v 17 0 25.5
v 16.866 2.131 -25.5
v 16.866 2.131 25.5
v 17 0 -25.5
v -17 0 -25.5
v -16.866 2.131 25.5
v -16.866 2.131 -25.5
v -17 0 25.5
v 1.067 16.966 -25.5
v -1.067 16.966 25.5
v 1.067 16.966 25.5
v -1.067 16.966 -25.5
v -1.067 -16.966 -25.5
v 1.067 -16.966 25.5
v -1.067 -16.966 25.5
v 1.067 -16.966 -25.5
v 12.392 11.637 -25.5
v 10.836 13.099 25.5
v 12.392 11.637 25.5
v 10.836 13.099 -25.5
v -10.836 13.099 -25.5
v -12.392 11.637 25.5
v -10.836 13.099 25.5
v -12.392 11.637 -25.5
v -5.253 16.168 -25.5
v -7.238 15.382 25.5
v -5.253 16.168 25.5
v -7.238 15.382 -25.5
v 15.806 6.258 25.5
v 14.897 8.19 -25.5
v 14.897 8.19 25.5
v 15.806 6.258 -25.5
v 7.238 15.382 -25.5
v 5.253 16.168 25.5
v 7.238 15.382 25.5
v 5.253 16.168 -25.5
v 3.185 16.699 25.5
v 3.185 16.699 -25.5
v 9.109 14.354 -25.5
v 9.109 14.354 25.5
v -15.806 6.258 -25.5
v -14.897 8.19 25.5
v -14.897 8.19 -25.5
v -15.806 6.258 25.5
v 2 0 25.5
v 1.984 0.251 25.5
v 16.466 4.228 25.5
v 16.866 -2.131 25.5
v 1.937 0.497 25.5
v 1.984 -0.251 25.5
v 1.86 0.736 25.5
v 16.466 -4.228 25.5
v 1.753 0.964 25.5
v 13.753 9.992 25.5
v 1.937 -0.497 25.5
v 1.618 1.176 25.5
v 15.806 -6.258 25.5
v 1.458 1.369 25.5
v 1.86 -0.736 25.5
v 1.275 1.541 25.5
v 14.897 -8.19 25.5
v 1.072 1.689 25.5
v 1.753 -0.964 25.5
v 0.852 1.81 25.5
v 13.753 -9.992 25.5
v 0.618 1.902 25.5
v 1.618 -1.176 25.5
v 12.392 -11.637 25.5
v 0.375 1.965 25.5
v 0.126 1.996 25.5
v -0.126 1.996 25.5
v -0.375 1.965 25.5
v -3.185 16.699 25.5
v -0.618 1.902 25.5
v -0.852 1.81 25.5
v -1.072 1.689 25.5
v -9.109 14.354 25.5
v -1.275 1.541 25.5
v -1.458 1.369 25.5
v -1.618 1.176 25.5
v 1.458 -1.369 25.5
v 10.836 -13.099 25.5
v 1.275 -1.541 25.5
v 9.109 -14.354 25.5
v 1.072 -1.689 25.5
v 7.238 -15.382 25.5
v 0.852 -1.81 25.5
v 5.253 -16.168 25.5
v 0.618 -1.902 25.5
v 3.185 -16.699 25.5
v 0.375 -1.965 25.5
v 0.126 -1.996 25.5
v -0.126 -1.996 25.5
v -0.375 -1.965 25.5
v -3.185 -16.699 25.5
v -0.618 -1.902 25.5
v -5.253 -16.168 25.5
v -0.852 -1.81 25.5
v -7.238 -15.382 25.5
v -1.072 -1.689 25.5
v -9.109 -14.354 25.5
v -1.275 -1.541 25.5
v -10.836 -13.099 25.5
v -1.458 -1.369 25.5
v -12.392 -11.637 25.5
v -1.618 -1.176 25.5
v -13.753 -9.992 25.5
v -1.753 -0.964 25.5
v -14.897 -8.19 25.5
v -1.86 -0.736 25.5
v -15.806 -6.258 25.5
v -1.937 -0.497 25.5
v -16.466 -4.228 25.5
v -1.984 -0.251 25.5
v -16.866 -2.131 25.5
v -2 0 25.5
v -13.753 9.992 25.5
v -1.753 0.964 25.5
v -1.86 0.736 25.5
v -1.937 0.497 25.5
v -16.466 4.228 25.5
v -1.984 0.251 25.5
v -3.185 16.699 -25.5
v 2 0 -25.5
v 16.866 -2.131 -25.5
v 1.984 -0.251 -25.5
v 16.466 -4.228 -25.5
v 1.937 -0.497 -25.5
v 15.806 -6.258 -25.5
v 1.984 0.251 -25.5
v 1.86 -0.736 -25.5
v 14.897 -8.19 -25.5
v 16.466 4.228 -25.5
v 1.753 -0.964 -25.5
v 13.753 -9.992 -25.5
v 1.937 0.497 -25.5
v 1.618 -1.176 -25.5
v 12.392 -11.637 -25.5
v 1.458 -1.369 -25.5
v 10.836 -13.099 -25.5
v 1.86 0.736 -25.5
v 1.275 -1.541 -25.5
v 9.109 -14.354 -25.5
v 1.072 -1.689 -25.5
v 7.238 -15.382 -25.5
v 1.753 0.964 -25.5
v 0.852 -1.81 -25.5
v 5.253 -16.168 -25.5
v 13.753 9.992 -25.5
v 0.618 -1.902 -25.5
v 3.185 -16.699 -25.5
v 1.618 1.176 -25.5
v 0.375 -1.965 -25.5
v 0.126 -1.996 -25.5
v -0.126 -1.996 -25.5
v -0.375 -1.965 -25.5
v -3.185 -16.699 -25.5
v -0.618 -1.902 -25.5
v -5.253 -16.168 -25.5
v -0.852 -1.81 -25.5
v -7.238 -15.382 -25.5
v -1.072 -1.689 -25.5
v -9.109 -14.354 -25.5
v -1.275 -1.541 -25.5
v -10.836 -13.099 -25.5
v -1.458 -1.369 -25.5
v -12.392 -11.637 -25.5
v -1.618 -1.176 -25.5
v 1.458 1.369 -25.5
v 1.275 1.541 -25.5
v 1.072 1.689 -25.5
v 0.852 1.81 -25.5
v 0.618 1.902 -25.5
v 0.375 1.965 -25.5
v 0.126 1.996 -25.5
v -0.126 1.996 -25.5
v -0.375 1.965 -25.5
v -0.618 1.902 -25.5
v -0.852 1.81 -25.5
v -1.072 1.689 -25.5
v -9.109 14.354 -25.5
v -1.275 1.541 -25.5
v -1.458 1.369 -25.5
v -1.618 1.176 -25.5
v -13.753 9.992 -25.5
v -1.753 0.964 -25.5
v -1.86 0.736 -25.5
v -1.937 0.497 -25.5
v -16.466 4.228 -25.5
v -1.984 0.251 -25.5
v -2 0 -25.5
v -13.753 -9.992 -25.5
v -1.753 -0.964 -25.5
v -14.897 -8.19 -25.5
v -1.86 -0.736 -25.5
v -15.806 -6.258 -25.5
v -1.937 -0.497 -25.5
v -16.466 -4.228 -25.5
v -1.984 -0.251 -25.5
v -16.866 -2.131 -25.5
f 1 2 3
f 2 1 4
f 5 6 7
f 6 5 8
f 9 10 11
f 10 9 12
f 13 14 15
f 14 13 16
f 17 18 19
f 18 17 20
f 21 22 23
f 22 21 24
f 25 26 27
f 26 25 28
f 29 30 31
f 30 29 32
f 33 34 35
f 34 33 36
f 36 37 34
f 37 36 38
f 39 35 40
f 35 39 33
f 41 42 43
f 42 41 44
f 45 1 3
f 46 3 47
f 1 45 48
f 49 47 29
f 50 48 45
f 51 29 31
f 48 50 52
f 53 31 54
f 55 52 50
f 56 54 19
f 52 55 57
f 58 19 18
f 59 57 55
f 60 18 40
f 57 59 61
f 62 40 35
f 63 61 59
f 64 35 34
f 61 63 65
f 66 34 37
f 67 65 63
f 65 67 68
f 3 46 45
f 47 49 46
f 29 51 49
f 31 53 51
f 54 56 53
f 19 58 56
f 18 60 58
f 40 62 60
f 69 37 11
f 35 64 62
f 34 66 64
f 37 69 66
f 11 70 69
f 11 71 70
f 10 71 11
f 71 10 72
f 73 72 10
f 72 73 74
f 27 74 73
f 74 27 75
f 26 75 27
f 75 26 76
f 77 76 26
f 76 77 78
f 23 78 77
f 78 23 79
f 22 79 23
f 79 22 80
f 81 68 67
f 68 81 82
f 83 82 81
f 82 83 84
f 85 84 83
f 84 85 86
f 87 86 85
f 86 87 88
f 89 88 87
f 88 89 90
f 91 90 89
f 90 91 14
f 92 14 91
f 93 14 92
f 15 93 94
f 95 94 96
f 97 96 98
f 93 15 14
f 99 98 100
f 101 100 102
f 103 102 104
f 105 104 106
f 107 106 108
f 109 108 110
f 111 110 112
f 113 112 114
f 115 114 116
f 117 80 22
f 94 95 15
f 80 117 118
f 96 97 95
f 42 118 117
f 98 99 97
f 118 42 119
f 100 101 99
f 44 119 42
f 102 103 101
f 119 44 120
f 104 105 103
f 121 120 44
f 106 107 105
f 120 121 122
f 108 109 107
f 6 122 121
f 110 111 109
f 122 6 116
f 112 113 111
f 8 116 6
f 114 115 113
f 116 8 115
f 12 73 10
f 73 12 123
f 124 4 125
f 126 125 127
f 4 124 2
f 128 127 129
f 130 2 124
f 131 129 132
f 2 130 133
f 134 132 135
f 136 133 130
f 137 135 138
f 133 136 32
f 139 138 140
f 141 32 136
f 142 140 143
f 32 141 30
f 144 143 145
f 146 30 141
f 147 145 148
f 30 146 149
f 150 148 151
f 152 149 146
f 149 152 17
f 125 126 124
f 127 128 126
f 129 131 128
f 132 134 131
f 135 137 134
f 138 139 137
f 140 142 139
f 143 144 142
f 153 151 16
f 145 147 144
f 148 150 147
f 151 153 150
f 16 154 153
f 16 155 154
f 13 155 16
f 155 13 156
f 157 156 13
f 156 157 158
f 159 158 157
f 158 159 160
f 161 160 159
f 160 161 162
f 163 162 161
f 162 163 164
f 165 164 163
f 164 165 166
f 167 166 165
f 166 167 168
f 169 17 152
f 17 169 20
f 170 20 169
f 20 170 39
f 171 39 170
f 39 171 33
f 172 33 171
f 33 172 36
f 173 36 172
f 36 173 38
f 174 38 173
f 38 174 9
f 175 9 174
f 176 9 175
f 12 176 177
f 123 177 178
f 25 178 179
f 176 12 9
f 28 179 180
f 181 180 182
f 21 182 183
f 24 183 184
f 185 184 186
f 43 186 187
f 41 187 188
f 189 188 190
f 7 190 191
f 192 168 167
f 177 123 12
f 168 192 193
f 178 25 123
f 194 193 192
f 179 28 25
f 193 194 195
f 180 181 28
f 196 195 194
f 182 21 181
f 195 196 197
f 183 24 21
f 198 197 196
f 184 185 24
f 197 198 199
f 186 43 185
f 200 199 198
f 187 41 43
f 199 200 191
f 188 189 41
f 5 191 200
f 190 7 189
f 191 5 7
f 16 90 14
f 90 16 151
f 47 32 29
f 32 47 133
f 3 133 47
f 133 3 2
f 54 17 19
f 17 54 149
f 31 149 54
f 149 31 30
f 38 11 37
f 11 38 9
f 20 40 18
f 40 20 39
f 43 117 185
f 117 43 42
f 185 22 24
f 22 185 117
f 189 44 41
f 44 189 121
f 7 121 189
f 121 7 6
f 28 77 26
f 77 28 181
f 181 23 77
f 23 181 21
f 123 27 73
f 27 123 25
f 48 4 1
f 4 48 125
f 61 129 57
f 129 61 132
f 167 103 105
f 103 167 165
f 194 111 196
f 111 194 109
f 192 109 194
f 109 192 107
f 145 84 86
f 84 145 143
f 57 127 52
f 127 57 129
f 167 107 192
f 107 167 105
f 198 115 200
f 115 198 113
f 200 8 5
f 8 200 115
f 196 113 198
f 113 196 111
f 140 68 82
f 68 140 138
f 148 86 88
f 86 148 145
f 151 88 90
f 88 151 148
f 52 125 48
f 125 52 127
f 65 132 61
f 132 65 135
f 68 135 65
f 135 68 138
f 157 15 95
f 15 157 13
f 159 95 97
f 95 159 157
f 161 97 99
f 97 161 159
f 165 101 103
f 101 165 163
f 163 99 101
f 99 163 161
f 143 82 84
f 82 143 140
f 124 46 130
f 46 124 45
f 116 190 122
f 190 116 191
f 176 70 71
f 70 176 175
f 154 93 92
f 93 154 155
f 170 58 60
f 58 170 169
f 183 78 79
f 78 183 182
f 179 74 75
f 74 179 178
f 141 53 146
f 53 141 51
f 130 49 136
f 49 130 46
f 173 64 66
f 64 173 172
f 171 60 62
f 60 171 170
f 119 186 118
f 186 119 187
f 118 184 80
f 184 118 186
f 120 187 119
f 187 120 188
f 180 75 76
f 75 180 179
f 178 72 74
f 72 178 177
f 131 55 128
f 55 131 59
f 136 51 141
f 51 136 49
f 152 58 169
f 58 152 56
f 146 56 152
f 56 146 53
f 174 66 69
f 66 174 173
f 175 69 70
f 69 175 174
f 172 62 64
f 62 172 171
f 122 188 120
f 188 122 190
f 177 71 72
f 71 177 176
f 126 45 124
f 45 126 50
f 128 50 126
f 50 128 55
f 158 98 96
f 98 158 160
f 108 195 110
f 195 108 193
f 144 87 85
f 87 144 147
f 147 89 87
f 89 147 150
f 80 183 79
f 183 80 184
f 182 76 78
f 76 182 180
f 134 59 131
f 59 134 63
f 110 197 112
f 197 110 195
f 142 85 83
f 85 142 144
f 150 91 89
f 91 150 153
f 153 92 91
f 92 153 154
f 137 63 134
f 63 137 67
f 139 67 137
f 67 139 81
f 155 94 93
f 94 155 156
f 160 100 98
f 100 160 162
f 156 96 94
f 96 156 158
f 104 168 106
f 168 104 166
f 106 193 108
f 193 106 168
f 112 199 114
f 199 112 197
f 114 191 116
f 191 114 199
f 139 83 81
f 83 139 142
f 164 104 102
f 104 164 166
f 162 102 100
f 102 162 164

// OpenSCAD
$fn = 50;


difference() {
	union() {
		translate(v = [0, 0, -25.5000000000]) {
			cylinder(h = 51, r = 17.0000000000);
		}
	}
	union() {
		translate(v = [0, 0, -100.0000000000]) {
			cylinder(h = 200, r = 2.0000000000);
		}
	}
}
